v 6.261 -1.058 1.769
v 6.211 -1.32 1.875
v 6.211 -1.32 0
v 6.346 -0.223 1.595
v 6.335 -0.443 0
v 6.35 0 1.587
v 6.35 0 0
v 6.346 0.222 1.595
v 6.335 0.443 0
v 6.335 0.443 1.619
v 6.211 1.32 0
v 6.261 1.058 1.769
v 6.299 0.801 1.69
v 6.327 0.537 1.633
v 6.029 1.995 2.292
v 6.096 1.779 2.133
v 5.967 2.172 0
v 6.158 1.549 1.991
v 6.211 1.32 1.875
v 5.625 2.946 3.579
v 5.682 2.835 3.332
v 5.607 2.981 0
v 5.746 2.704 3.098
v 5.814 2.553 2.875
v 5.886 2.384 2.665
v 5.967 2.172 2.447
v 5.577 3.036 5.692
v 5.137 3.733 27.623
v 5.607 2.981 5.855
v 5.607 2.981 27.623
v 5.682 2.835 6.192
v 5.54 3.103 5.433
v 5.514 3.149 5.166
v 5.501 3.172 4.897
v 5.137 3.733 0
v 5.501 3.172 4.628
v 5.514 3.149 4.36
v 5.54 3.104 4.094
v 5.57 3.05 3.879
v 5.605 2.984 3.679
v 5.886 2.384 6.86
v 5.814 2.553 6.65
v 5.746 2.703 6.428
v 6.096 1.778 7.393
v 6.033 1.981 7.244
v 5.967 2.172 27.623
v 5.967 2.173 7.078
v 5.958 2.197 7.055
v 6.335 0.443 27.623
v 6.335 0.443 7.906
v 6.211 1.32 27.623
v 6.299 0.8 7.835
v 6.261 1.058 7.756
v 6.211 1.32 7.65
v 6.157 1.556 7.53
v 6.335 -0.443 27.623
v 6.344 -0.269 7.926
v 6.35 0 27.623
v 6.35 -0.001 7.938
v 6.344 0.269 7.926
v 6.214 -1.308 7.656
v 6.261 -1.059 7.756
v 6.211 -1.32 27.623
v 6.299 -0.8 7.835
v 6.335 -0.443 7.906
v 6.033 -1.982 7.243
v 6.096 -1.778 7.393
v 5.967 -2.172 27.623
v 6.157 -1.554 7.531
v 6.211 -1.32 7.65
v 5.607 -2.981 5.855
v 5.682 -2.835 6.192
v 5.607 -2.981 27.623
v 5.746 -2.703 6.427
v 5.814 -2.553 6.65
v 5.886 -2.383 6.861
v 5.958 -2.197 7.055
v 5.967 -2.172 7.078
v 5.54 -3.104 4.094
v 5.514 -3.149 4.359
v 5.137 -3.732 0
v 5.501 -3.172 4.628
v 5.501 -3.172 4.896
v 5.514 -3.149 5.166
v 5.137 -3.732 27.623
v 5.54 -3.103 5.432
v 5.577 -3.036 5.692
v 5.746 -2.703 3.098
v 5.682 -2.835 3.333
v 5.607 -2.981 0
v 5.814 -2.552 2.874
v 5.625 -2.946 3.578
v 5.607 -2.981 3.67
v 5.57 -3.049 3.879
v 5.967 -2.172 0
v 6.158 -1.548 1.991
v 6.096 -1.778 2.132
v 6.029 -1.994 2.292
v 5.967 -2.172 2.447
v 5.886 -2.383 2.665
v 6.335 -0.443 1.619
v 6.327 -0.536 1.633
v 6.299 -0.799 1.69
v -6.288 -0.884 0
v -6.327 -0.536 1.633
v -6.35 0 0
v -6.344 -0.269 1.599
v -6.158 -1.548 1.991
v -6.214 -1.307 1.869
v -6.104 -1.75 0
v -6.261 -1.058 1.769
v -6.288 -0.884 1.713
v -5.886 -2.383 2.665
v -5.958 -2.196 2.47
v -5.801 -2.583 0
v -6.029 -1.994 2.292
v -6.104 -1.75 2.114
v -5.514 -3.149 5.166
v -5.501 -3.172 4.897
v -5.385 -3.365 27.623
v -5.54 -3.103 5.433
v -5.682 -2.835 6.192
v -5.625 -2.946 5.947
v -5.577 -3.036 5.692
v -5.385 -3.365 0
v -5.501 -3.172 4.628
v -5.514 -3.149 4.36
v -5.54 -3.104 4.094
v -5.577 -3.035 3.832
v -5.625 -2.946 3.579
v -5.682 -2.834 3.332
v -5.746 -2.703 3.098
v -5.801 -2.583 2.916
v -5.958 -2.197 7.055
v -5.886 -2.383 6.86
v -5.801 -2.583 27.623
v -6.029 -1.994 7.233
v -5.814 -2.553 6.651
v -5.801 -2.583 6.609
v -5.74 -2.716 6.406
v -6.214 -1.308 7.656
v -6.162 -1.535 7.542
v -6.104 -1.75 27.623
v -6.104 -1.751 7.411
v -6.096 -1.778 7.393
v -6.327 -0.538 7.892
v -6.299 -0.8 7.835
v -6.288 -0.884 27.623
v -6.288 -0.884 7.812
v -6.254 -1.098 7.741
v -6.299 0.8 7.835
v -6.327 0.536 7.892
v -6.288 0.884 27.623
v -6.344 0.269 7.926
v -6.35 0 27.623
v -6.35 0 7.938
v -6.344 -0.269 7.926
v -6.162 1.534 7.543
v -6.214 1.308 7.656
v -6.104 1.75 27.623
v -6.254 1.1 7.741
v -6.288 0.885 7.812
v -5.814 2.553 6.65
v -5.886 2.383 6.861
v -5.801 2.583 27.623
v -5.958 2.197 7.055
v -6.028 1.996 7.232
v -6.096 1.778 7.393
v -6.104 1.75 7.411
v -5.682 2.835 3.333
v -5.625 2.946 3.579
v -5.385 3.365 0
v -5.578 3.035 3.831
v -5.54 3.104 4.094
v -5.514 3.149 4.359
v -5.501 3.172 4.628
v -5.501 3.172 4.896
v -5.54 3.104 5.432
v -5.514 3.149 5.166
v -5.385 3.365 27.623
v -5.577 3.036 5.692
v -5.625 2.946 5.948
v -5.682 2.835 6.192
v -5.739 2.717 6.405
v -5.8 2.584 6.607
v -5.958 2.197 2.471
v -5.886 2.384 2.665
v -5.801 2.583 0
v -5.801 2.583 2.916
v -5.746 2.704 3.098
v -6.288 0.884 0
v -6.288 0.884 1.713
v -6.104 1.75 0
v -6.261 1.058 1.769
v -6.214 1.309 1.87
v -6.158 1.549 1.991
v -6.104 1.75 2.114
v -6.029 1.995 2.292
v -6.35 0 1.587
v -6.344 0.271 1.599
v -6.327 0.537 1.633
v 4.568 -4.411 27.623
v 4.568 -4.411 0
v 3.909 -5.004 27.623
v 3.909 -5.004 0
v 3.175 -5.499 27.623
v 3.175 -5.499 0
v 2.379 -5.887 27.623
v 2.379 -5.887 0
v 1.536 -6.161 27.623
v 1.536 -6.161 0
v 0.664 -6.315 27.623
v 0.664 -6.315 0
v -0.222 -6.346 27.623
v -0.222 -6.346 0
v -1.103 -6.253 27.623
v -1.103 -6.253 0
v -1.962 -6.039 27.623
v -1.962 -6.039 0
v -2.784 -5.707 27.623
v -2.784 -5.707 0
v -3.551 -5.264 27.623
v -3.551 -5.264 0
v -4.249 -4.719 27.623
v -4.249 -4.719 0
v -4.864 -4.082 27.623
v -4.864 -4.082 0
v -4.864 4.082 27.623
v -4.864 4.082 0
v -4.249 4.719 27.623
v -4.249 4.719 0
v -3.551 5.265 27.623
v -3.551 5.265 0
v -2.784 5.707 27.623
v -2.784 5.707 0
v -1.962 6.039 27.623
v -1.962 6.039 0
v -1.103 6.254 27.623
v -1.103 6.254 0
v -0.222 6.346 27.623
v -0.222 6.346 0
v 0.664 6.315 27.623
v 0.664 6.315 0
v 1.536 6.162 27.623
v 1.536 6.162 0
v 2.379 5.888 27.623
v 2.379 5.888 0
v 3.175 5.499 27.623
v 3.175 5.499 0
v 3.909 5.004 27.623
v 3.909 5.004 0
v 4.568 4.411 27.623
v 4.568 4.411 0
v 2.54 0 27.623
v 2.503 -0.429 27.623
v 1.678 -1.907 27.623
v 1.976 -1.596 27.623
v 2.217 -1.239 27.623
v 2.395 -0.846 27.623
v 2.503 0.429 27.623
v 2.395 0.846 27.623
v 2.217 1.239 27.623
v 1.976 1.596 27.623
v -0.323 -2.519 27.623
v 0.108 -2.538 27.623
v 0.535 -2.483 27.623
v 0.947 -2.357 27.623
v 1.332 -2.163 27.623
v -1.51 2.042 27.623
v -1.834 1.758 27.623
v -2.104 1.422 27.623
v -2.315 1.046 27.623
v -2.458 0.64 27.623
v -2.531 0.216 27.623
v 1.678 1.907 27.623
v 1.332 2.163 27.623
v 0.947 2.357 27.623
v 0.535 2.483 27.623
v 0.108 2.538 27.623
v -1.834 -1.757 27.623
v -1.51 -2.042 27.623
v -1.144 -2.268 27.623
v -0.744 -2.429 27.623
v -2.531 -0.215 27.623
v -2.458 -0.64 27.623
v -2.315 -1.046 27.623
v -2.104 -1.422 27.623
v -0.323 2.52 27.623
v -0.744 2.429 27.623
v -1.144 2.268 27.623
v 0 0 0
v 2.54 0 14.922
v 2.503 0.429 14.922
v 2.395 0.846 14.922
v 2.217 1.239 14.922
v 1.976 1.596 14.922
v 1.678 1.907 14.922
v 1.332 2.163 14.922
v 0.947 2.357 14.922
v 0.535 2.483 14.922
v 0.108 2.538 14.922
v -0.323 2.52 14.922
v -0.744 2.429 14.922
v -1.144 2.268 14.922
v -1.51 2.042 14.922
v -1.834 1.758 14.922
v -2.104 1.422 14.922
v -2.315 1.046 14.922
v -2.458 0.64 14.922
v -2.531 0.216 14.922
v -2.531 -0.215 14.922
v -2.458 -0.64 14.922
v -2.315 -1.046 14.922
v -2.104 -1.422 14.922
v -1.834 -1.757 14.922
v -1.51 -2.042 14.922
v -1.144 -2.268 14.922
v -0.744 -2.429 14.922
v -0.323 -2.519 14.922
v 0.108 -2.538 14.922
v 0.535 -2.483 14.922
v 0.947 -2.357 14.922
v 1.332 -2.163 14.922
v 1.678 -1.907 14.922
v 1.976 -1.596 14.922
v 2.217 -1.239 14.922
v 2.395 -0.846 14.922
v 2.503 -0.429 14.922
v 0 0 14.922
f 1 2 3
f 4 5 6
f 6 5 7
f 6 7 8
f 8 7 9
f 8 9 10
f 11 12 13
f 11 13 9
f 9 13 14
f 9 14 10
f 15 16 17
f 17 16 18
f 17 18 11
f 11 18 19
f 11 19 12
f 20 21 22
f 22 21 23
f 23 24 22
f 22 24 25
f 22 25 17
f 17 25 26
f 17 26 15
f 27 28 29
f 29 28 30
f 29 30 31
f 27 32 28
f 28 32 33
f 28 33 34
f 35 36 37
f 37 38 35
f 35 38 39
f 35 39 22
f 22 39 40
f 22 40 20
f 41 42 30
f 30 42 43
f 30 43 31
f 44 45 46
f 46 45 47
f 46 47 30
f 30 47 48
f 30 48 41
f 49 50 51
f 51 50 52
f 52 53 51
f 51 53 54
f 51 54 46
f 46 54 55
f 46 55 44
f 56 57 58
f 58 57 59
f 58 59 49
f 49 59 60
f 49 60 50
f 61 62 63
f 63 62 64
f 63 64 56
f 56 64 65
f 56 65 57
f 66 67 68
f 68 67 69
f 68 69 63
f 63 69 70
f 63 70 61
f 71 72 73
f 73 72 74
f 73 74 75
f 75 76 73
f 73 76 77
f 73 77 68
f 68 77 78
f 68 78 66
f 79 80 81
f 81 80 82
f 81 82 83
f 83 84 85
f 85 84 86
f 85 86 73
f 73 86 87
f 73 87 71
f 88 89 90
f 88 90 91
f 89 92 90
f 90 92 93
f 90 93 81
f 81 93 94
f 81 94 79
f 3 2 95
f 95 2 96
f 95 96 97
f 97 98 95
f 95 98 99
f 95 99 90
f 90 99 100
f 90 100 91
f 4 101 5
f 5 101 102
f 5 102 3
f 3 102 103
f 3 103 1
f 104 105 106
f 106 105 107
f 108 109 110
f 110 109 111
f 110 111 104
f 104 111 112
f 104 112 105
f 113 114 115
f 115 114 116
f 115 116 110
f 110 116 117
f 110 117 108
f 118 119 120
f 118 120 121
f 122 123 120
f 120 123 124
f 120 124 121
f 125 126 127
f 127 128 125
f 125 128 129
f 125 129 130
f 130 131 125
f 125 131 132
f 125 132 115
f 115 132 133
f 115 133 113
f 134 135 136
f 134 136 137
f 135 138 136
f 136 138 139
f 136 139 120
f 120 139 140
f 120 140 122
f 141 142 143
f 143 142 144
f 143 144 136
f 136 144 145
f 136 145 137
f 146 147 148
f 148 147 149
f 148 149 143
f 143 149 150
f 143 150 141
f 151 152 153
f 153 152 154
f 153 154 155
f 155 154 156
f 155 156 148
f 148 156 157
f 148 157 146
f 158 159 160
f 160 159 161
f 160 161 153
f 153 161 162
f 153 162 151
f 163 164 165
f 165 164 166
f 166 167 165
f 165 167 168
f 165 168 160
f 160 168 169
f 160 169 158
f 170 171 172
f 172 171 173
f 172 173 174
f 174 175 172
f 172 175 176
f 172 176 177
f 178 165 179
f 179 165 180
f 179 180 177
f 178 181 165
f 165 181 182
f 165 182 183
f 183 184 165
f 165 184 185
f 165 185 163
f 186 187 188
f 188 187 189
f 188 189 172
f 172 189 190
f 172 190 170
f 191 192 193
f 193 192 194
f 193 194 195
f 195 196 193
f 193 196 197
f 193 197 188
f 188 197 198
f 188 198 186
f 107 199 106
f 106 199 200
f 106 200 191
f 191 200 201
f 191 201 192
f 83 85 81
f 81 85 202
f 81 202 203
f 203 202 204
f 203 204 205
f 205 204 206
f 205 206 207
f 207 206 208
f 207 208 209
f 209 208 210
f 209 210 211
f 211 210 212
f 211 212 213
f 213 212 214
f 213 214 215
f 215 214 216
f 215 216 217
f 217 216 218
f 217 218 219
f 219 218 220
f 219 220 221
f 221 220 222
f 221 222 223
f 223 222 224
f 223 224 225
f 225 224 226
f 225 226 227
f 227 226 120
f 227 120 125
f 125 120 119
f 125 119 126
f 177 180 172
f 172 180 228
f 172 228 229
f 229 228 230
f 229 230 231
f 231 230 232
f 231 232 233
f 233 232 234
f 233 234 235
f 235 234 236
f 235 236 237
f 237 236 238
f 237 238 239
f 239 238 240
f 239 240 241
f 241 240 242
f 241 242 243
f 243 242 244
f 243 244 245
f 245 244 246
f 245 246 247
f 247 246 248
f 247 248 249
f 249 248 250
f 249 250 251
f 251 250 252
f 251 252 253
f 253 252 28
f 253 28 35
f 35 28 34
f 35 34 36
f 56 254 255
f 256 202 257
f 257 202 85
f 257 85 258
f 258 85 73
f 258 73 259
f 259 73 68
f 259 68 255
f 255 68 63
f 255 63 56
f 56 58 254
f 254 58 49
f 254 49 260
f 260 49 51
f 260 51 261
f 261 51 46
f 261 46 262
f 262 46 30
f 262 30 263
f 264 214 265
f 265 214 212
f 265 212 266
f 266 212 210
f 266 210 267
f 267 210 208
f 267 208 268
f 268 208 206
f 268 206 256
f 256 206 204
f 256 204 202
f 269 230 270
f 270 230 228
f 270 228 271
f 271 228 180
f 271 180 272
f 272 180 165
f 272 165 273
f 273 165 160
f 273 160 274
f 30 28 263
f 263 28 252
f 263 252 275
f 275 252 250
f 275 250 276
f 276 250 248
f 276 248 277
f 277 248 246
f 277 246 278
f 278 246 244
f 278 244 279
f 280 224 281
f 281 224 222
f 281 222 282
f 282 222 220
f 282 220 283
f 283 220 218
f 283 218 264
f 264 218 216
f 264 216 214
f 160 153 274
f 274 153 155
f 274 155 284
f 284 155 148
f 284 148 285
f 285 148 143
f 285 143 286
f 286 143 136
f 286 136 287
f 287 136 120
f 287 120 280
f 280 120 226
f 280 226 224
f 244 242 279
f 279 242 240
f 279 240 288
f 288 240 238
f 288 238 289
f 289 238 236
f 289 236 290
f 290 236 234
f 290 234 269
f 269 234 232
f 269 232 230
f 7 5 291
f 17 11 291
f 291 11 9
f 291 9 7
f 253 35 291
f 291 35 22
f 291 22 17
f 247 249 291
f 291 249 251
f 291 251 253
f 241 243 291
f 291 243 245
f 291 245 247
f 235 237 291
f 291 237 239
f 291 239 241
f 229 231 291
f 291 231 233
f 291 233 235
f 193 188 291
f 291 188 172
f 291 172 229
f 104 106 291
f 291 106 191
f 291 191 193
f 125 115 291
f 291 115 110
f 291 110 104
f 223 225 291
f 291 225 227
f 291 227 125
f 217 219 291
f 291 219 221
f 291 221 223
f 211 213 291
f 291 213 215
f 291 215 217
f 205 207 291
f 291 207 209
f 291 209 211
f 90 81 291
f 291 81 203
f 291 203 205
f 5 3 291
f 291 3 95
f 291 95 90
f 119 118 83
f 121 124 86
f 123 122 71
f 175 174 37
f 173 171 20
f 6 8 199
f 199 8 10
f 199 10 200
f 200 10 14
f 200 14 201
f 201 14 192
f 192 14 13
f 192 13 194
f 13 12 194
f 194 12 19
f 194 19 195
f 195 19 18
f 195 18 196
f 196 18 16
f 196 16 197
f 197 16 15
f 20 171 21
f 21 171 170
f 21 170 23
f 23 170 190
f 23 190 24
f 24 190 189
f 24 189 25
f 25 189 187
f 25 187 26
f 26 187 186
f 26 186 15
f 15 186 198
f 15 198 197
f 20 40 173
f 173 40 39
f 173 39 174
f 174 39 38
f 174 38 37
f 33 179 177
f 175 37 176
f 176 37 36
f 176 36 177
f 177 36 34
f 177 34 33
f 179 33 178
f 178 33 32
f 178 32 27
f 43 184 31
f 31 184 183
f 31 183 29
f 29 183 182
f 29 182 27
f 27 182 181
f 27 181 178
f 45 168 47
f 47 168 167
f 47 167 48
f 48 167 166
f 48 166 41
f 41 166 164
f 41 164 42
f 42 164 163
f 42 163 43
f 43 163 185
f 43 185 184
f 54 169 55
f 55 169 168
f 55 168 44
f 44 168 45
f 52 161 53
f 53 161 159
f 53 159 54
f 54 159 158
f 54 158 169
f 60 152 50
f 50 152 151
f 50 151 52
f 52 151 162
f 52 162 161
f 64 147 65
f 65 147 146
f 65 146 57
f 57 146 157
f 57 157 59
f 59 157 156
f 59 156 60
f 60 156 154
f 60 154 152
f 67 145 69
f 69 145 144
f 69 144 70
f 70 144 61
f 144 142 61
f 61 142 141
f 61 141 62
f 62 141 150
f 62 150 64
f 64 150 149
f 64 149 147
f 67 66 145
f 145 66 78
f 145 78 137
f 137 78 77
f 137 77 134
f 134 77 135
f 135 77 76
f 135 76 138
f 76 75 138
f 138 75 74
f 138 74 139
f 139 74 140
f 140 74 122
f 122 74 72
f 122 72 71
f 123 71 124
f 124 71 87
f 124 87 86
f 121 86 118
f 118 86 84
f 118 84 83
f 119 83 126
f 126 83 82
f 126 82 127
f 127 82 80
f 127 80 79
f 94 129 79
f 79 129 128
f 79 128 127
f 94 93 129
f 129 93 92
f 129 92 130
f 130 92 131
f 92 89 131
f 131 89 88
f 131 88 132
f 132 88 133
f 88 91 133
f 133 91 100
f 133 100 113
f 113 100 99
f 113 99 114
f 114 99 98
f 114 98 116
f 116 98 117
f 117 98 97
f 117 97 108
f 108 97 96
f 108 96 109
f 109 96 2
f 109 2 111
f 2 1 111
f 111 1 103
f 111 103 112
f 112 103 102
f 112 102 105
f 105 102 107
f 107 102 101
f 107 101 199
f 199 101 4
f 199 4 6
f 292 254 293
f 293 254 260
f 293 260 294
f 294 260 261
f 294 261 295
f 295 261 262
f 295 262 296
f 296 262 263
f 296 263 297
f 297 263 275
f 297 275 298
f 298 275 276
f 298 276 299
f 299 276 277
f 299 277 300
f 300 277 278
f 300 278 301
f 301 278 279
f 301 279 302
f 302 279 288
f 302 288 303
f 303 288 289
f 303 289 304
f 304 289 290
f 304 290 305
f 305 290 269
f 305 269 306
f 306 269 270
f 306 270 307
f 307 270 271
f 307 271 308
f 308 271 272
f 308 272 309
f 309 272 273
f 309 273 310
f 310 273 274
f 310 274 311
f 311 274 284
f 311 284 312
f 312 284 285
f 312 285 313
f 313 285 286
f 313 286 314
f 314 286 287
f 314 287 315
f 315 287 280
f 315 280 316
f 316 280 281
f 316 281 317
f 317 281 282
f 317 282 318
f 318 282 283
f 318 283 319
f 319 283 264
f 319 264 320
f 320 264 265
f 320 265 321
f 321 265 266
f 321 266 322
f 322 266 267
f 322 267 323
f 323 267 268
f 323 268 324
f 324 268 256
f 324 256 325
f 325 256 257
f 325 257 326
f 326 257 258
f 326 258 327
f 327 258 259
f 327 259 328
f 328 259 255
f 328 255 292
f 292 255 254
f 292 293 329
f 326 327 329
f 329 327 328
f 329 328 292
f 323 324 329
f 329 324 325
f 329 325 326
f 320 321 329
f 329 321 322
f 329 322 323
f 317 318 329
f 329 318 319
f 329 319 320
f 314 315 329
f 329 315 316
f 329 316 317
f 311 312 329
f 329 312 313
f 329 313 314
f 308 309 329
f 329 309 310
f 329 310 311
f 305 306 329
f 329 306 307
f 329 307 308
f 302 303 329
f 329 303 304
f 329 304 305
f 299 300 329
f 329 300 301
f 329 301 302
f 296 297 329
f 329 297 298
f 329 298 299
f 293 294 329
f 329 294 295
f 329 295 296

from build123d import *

# Parameters (mm, degrees)
SKETCH1_R               = 6.35
BOSS_EXTRUDE1_DEPTH     = 27.6225
CUT_EXTRUDE2_DEPTH      = 30.045610791
CUT_EXTRUDE2_DEPTH_BACK = 30.045610791
SKETCH3_R               = 3.175
SKETCH2_2_R             = 2.54
CUT_EXTRUDE3_DEPTH      = 12.7


with BuildPart() as part:
    # Sketch1 → Boss-Extrude1 (new body)
    with BuildSketch(Plane.XY):
        Circle(SKETCH1_R)
    extrude(amount=BOSS_EXTRUDE1_DEPTH)

    # Sketch3 → Cut-Extrude2 (cut, two sides: drawn at the far end of the back side and taken through both)
    with BuildSketch(Plane(origin=(0, 0, 0), x_dir=(0, 0, -1), z_dir=(1, 0, 0)).offset(-CUT_EXTRUDE2_DEPTH_BACK)):
        with Locations((-4.7625, 0)):
            Circle(SKETCH3_R)
    extrude(amount=CUT_EXTRUDE2_DEPTH + CUT_EXTRUDE2_DEPTH_BACK, mode=Mode.SUBTRACT)

    # Sketch2<2> → Cut-Extrude3 (cut)
    with BuildSketch(Plane.XY.offset(27.6225)):
        Circle(SKETCH2_2_R)
    extrude(amount=-CUT_EXTRUDE3_DEPTH, mode=Mode.SUBTRACT)


solid = part.part
